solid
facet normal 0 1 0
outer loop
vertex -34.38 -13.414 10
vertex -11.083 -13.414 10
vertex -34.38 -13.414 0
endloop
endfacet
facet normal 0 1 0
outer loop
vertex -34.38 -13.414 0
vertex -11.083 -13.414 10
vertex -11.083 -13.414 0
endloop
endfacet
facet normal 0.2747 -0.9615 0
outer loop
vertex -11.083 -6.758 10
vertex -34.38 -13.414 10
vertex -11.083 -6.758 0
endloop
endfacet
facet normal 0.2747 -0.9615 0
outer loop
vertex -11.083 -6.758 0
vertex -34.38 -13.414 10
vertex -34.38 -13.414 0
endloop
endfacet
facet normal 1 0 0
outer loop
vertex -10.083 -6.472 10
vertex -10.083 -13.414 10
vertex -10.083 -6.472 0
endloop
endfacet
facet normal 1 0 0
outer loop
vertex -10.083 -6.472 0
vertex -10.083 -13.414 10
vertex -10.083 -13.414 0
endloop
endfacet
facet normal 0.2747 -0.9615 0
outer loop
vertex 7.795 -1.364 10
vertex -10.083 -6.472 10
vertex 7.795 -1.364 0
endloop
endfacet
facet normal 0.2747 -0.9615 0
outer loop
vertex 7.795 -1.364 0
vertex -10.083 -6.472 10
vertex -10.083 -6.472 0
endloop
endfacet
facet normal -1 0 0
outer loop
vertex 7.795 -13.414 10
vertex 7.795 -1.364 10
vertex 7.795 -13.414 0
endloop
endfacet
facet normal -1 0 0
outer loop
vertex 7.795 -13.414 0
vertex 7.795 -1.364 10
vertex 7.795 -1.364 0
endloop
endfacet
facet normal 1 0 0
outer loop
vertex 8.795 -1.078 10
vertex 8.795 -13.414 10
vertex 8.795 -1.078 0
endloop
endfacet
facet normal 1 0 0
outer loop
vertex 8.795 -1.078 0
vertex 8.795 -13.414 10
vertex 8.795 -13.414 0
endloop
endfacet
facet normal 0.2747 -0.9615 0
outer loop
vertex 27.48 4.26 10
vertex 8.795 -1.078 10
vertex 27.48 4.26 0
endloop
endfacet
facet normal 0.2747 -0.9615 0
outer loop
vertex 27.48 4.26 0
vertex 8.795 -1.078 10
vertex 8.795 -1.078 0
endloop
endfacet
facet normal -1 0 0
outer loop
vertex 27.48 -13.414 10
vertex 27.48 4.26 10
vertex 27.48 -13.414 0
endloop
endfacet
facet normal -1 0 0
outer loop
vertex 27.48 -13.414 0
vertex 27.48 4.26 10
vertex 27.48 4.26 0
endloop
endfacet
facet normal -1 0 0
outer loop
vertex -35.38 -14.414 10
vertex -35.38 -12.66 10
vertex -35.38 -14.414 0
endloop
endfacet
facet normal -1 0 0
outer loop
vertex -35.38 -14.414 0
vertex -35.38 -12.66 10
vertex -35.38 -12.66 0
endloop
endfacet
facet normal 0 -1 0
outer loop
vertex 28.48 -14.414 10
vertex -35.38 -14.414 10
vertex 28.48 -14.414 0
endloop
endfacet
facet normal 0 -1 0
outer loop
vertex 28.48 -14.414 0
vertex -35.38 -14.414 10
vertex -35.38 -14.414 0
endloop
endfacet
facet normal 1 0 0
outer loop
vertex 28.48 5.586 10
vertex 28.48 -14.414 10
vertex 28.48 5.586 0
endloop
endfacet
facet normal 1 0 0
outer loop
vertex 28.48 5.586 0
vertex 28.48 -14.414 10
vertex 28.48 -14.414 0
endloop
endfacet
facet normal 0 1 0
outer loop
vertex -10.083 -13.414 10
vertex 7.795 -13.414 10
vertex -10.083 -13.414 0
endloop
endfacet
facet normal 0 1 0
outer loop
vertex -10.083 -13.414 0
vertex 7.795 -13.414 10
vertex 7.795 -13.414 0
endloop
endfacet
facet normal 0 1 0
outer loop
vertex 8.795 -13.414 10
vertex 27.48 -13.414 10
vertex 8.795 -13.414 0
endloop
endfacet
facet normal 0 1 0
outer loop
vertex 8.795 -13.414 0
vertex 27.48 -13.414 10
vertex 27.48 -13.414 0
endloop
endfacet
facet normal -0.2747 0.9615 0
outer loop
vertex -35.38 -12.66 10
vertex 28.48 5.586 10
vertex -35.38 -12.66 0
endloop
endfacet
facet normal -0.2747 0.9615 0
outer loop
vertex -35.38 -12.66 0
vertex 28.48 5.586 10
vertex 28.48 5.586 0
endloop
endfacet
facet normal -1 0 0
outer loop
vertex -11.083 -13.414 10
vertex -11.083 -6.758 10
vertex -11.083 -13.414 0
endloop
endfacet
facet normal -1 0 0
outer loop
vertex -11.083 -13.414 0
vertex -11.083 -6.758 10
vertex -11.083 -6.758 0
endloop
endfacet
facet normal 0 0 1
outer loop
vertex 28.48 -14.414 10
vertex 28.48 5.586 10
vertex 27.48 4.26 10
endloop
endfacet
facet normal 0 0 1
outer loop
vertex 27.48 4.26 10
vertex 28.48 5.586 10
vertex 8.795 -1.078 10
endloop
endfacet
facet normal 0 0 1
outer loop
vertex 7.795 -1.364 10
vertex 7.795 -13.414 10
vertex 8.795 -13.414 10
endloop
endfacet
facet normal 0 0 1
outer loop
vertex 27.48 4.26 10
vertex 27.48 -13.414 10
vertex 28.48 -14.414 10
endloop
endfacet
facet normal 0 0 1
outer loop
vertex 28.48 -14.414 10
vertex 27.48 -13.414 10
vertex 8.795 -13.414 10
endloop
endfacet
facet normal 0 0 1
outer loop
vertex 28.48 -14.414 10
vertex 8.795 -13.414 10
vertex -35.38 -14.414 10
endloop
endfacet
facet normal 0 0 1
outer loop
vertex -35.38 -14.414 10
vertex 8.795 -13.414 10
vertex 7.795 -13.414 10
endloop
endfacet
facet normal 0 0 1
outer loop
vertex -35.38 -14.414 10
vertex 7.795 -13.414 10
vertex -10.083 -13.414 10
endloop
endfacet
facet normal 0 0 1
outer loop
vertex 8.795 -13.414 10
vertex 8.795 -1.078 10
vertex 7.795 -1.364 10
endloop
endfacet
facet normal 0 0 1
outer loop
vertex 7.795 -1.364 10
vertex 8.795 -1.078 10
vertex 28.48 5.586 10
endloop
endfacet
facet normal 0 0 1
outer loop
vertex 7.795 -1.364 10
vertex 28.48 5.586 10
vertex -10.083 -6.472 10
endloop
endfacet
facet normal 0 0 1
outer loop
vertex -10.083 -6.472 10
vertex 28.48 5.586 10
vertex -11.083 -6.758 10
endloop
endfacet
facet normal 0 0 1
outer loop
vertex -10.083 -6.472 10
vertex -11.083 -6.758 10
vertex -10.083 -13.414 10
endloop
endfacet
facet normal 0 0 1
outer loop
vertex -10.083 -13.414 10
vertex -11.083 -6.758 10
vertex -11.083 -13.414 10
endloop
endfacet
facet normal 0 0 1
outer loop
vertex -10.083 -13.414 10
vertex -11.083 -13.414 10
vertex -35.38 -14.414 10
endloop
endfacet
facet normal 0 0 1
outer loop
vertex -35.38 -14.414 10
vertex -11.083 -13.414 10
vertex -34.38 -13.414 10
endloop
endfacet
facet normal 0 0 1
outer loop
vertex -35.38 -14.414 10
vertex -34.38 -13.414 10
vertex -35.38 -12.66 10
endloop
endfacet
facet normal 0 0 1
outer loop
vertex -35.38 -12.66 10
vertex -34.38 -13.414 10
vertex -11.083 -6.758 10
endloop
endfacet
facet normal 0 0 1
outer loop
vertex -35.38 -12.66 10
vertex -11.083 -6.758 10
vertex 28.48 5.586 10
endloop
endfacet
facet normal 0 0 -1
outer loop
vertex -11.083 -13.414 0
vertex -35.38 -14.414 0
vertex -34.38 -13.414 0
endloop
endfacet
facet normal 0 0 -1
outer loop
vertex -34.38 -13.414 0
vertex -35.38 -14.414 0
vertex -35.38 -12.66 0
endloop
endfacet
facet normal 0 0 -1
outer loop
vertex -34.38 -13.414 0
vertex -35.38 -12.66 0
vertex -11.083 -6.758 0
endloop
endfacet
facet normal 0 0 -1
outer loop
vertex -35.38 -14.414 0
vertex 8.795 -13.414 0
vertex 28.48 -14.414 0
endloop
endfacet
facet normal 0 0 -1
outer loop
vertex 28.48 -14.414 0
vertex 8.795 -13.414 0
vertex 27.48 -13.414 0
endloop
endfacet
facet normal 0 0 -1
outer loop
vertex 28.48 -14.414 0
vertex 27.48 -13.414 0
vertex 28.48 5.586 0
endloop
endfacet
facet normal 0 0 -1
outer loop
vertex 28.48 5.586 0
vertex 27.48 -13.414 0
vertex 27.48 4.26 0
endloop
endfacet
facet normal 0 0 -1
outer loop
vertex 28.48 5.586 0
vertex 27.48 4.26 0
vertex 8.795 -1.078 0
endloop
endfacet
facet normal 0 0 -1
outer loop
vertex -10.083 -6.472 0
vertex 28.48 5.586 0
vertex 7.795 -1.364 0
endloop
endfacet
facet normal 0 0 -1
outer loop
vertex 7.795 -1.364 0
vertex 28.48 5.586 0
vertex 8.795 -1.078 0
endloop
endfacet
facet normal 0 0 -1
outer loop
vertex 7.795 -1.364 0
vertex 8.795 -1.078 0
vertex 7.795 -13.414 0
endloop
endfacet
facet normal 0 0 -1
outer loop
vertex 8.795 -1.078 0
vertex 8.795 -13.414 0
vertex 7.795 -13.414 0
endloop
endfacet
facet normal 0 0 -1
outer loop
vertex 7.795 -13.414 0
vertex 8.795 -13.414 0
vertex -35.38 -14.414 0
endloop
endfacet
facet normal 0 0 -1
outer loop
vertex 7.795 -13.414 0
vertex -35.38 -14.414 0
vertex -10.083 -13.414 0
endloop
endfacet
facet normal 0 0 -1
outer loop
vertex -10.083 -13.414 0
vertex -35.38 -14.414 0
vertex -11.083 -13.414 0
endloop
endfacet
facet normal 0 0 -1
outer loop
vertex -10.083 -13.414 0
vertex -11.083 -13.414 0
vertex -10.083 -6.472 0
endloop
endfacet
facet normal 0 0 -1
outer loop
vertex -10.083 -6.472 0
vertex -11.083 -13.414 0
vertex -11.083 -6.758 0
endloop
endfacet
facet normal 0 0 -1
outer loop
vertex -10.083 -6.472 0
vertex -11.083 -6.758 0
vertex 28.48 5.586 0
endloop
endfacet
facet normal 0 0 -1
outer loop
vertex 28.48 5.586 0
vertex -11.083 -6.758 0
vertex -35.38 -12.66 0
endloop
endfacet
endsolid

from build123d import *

# Parameters (mm, degrees)
BOSS_EXTRUDE1_DEPTH = 10


with BuildPart() as part:
    # Sketch1 → Boss-Extrude1 (new body)
    with BuildSketch(Plane.XY):
        Polygon((28.479998469, 5.585850997), (28.479998469, -14.414149003), (-35.379946586, -14.414149003), (-35.379946586, -12.65984759), align=None)
        Polygon((27.479998469, 4.260121013), (27.479998469, -13.414149003), (8.794915094, -13.414149003), (8.794915094, -1.078474237), align=None, mode=Mode.SUBTRACT)
        Polygon((7.794915094, -1.364188523), (7.794915094, -13.414149003), (-10.083352731, -13.414149003), (-10.083352731, -6.472265045), align=None, mode=Mode.SUBTRACT)
        Polygon((-11.083352731, -6.75797933), (-11.083352731, -13.414149003), (-34.379946586, -13.414149003), align=None, mode=Mode.SUBTRACT)
    extrude(amount=BOSS_EXTRUDE1_DEPTH)


solid = part.part
